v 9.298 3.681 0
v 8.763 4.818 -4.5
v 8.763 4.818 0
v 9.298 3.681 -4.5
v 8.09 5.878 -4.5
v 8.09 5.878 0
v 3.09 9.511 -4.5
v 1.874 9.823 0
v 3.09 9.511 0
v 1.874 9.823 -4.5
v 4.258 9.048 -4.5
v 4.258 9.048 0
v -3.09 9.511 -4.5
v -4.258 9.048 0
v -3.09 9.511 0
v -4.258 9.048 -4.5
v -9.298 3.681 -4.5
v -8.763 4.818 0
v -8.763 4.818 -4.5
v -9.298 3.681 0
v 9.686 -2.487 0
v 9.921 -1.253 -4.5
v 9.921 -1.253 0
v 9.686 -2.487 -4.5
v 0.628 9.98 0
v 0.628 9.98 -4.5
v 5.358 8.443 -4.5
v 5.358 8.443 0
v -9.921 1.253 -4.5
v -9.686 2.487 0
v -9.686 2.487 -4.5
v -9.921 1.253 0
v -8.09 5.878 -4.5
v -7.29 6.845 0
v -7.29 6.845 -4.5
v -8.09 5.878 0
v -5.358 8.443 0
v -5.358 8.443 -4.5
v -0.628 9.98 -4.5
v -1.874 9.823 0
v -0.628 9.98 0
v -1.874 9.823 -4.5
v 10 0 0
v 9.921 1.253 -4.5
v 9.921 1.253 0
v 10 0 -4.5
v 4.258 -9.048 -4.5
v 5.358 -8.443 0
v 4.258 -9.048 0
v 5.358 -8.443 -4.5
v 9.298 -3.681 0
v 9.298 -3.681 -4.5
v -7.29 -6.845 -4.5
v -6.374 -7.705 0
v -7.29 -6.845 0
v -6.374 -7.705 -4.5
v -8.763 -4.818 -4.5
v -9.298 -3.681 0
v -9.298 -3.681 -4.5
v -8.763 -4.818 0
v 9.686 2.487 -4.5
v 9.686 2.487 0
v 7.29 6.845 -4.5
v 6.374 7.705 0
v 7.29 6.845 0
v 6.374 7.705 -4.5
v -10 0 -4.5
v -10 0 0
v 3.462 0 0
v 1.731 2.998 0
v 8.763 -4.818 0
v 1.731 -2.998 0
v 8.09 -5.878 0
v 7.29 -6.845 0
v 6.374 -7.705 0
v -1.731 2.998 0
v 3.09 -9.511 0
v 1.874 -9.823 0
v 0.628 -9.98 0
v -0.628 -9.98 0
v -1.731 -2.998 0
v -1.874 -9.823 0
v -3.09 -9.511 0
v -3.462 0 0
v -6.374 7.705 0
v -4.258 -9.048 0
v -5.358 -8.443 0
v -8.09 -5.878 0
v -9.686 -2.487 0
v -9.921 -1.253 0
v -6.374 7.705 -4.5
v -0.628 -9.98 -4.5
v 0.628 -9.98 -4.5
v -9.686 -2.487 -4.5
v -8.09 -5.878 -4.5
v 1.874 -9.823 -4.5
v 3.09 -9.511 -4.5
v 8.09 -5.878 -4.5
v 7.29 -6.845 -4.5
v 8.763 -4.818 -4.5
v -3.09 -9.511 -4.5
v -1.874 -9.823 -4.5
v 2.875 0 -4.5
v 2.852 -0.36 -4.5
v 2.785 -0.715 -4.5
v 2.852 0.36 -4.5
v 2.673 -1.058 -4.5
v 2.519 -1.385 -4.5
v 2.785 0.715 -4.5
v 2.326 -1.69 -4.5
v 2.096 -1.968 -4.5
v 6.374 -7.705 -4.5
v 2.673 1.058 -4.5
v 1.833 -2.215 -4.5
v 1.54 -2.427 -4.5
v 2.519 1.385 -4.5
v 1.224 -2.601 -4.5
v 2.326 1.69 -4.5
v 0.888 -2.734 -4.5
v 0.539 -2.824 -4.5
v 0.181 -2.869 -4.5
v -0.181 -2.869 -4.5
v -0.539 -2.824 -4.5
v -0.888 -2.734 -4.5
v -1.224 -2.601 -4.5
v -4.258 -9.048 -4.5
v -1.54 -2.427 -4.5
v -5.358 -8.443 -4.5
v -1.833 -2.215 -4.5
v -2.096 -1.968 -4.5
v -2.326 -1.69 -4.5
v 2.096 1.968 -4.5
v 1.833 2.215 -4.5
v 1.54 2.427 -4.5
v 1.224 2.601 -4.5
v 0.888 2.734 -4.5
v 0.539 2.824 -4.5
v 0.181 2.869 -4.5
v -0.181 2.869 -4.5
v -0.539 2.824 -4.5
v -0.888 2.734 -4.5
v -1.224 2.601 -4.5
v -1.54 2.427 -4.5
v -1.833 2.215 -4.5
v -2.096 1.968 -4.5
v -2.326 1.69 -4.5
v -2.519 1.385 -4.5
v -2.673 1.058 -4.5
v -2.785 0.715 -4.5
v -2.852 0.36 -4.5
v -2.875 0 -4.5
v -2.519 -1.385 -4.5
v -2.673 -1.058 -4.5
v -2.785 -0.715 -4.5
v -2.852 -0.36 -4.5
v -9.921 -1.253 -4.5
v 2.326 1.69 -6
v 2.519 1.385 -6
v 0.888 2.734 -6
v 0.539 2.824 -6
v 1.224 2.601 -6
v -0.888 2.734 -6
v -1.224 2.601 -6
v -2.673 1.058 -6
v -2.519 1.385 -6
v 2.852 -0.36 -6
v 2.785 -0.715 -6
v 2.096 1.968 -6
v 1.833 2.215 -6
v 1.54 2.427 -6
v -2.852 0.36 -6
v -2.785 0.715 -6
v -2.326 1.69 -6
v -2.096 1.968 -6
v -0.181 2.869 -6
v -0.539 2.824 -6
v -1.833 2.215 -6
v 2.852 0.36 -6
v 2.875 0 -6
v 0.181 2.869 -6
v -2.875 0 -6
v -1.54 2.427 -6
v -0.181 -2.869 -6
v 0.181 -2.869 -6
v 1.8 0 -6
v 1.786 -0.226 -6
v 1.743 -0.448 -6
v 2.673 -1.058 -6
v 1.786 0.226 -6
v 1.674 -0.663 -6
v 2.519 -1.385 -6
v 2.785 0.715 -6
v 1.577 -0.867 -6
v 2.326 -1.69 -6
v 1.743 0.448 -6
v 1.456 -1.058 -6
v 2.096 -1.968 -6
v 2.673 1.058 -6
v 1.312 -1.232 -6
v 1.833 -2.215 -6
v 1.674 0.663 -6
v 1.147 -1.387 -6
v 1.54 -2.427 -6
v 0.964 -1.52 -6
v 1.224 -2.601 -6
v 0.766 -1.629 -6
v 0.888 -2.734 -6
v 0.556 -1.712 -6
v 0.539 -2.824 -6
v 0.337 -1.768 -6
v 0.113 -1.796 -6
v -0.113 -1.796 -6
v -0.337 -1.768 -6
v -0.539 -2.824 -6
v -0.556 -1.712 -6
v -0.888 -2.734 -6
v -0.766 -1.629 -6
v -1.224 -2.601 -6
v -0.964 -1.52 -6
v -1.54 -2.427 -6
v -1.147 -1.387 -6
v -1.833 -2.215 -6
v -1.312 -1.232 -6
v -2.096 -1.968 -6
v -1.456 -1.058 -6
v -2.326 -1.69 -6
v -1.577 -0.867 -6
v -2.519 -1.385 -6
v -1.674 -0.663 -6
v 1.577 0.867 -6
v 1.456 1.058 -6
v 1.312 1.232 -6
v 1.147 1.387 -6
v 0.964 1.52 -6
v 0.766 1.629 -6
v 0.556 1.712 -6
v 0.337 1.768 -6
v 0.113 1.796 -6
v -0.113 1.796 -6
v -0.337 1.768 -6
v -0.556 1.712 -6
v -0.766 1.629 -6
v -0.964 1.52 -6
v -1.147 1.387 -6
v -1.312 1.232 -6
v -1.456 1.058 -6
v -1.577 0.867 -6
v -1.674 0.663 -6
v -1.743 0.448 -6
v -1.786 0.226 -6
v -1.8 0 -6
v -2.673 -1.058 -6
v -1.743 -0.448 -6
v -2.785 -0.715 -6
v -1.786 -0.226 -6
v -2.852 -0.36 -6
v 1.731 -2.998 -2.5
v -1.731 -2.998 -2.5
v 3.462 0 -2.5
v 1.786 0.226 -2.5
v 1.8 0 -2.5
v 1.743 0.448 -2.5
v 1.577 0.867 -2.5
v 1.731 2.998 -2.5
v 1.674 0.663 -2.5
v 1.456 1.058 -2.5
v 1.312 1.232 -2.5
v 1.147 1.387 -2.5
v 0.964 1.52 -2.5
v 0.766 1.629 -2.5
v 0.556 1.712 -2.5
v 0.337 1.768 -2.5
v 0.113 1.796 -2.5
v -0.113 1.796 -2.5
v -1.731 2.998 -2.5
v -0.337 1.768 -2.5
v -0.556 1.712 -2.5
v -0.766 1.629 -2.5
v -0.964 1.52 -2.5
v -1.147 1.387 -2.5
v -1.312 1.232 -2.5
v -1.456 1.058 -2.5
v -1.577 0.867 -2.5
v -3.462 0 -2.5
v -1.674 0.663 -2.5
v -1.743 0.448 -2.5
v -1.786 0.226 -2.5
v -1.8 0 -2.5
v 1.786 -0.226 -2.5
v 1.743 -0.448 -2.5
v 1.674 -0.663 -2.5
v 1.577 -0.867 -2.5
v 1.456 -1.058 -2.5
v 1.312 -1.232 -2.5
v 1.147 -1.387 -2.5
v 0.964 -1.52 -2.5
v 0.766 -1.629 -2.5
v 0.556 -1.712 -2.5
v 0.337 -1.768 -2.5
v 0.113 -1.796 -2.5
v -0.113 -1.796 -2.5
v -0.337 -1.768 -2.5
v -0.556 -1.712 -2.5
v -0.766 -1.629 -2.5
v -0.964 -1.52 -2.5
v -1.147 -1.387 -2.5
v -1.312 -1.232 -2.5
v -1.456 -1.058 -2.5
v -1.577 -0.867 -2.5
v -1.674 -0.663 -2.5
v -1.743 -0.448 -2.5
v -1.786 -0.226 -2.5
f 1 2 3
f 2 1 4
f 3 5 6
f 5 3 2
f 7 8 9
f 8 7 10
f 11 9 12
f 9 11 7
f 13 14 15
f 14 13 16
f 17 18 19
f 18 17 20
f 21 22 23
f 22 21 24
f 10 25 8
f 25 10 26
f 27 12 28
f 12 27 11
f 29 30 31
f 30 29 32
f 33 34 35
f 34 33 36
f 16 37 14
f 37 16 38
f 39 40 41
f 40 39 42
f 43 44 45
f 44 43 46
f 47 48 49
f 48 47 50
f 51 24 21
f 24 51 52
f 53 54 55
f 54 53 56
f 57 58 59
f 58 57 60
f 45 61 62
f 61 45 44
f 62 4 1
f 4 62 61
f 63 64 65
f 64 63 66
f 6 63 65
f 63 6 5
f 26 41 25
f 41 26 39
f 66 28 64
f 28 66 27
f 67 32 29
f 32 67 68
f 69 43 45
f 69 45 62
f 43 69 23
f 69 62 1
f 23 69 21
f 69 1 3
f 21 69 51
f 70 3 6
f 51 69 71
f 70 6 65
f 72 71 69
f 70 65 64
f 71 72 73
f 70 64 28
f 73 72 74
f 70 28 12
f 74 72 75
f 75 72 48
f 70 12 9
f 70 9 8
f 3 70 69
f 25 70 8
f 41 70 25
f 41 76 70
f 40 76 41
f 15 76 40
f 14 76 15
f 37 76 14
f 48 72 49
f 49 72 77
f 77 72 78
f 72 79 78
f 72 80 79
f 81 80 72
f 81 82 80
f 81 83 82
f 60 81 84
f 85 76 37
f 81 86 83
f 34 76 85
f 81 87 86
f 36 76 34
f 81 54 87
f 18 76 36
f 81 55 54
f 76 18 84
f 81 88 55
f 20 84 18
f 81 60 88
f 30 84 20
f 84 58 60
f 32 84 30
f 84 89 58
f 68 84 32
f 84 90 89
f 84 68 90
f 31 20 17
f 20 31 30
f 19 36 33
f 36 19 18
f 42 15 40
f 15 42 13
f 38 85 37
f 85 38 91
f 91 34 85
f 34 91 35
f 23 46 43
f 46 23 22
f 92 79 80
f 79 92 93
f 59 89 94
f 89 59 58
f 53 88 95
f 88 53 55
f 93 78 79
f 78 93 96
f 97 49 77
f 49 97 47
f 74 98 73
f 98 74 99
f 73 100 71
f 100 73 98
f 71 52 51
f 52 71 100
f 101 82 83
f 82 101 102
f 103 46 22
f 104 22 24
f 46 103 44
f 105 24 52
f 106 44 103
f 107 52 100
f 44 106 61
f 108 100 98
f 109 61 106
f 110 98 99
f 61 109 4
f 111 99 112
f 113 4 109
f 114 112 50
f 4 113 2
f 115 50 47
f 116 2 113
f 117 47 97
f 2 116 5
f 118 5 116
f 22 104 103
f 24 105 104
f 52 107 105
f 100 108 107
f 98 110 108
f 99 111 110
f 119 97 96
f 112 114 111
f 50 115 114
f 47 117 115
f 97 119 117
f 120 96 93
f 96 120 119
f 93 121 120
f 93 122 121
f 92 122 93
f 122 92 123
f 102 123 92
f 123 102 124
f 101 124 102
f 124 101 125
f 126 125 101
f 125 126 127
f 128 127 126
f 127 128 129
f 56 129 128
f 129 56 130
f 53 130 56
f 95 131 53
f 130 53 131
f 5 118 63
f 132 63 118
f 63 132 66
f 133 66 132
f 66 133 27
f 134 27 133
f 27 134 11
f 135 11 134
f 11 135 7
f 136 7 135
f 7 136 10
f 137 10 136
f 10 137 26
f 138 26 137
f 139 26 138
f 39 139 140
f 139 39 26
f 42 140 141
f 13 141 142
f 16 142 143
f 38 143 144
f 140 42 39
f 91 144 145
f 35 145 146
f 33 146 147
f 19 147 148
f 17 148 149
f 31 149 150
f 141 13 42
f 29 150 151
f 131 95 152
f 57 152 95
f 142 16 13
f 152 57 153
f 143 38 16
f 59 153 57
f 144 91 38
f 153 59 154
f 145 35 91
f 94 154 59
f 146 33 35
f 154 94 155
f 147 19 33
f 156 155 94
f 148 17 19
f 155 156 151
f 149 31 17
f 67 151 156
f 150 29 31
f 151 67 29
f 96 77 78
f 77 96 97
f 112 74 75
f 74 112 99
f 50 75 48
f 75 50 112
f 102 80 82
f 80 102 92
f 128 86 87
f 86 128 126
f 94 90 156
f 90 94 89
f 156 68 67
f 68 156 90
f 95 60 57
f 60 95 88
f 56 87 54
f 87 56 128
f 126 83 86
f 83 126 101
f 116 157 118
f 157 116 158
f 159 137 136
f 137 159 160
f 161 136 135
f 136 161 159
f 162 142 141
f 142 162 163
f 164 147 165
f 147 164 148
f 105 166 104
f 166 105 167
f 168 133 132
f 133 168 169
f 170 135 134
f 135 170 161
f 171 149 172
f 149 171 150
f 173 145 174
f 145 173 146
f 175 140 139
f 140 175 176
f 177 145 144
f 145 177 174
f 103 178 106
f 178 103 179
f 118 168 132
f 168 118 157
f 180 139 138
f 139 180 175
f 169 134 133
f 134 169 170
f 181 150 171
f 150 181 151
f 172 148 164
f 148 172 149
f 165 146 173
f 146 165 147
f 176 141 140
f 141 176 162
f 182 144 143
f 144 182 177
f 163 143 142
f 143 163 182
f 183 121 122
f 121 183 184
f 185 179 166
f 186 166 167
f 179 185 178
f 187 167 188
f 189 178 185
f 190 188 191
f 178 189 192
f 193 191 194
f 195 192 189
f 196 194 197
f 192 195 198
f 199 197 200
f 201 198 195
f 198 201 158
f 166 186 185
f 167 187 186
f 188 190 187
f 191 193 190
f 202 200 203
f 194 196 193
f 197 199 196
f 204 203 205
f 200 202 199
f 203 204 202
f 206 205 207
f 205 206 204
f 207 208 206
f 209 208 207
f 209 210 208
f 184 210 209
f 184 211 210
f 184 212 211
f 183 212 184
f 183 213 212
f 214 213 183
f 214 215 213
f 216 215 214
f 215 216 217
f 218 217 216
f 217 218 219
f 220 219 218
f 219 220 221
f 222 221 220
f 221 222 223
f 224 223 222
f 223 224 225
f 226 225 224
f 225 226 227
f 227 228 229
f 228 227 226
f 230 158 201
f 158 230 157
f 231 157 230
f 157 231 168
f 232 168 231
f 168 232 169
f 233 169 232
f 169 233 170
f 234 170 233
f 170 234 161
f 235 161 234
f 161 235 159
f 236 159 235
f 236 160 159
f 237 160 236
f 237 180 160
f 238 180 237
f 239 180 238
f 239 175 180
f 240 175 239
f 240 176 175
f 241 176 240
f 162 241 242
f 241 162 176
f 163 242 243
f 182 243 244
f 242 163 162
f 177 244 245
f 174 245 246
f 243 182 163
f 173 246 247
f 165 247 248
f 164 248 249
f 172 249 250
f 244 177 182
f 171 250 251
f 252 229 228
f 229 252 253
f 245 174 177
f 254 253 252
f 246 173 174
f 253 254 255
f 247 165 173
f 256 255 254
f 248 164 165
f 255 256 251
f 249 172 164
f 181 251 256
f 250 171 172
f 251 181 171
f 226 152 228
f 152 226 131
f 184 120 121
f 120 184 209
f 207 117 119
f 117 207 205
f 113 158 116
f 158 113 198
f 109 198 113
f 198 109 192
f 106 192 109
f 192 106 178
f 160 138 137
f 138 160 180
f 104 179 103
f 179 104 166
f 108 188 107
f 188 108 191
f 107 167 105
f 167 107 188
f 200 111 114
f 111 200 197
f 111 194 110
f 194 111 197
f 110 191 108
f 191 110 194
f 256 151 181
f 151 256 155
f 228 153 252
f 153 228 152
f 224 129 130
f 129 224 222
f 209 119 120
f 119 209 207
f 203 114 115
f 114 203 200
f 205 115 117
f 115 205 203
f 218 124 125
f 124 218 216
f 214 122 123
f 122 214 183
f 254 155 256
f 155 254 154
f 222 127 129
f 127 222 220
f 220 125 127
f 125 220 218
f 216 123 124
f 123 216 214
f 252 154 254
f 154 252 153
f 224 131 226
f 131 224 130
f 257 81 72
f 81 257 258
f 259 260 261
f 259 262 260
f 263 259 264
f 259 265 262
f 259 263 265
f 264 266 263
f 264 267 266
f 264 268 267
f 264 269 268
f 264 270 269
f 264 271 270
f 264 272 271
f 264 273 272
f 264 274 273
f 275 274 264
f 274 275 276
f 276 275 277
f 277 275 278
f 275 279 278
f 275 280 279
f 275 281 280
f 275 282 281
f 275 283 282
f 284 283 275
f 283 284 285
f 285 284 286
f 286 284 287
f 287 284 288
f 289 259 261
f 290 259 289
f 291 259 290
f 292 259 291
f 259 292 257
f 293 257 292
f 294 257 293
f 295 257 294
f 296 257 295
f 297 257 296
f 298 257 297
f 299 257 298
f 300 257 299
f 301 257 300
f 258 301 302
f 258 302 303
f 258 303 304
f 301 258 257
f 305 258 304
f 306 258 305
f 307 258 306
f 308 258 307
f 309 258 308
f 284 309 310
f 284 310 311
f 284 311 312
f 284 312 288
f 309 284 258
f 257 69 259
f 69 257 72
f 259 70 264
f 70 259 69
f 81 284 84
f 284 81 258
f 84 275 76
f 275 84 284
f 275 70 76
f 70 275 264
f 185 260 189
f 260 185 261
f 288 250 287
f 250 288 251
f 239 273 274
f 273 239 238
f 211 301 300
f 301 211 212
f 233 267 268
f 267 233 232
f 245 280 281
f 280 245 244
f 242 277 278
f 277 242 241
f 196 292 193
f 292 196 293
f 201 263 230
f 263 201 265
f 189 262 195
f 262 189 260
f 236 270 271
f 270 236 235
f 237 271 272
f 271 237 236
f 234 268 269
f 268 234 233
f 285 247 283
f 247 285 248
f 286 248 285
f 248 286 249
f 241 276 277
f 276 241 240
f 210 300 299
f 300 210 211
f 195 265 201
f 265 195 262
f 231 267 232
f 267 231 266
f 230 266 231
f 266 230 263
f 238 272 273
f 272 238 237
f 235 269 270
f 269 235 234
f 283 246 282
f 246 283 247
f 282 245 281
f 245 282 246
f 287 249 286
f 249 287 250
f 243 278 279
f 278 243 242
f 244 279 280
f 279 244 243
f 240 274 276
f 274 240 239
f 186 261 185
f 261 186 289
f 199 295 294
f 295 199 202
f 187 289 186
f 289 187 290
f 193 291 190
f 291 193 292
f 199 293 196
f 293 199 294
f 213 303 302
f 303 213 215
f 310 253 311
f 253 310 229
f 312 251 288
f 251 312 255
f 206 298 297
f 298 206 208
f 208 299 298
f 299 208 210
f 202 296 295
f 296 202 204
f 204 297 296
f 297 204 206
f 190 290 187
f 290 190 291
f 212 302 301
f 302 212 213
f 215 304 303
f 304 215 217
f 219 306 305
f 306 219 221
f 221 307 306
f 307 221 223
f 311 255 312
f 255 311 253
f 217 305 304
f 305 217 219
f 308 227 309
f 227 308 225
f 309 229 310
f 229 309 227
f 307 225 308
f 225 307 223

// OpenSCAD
$fn = 50;

difference() {
	union() {
		translate(v = [0, 0, -4.5]) {
			cylinder(h = 4.5, r = 10.0);
		}
		#translate(v = [0, 0, -6.0]) {
			cylinder(h = 6, r = 2.875);
		}
	}
	union() {
		translate(v = [0, 0, 0]) {
			rotate(a = [0, 0, 0]) {
				difference() {
					union() {
						translate(v = [0, 0, -2.5]) {
							linear_extrude(height = 2.5) {
								polygon(points = [[3.4619999999999997, 0.0], [1.7310000000000003, 2.9981799479017264], [-1.7309999999999992, 2.9981799479017264], [-3.4619999999999997, 4.2397272186481365e-16], [-1.7310000000000014, -2.998179947901726], [1.7309999999999977, -2.9981799479017277]]);
							}
						}
					}
					union();
				}
			}
		}
		#translate(v = [0, 0, -100.0]) {
			cylinder(h = 200, r = 1.8);
		}
	}
}
